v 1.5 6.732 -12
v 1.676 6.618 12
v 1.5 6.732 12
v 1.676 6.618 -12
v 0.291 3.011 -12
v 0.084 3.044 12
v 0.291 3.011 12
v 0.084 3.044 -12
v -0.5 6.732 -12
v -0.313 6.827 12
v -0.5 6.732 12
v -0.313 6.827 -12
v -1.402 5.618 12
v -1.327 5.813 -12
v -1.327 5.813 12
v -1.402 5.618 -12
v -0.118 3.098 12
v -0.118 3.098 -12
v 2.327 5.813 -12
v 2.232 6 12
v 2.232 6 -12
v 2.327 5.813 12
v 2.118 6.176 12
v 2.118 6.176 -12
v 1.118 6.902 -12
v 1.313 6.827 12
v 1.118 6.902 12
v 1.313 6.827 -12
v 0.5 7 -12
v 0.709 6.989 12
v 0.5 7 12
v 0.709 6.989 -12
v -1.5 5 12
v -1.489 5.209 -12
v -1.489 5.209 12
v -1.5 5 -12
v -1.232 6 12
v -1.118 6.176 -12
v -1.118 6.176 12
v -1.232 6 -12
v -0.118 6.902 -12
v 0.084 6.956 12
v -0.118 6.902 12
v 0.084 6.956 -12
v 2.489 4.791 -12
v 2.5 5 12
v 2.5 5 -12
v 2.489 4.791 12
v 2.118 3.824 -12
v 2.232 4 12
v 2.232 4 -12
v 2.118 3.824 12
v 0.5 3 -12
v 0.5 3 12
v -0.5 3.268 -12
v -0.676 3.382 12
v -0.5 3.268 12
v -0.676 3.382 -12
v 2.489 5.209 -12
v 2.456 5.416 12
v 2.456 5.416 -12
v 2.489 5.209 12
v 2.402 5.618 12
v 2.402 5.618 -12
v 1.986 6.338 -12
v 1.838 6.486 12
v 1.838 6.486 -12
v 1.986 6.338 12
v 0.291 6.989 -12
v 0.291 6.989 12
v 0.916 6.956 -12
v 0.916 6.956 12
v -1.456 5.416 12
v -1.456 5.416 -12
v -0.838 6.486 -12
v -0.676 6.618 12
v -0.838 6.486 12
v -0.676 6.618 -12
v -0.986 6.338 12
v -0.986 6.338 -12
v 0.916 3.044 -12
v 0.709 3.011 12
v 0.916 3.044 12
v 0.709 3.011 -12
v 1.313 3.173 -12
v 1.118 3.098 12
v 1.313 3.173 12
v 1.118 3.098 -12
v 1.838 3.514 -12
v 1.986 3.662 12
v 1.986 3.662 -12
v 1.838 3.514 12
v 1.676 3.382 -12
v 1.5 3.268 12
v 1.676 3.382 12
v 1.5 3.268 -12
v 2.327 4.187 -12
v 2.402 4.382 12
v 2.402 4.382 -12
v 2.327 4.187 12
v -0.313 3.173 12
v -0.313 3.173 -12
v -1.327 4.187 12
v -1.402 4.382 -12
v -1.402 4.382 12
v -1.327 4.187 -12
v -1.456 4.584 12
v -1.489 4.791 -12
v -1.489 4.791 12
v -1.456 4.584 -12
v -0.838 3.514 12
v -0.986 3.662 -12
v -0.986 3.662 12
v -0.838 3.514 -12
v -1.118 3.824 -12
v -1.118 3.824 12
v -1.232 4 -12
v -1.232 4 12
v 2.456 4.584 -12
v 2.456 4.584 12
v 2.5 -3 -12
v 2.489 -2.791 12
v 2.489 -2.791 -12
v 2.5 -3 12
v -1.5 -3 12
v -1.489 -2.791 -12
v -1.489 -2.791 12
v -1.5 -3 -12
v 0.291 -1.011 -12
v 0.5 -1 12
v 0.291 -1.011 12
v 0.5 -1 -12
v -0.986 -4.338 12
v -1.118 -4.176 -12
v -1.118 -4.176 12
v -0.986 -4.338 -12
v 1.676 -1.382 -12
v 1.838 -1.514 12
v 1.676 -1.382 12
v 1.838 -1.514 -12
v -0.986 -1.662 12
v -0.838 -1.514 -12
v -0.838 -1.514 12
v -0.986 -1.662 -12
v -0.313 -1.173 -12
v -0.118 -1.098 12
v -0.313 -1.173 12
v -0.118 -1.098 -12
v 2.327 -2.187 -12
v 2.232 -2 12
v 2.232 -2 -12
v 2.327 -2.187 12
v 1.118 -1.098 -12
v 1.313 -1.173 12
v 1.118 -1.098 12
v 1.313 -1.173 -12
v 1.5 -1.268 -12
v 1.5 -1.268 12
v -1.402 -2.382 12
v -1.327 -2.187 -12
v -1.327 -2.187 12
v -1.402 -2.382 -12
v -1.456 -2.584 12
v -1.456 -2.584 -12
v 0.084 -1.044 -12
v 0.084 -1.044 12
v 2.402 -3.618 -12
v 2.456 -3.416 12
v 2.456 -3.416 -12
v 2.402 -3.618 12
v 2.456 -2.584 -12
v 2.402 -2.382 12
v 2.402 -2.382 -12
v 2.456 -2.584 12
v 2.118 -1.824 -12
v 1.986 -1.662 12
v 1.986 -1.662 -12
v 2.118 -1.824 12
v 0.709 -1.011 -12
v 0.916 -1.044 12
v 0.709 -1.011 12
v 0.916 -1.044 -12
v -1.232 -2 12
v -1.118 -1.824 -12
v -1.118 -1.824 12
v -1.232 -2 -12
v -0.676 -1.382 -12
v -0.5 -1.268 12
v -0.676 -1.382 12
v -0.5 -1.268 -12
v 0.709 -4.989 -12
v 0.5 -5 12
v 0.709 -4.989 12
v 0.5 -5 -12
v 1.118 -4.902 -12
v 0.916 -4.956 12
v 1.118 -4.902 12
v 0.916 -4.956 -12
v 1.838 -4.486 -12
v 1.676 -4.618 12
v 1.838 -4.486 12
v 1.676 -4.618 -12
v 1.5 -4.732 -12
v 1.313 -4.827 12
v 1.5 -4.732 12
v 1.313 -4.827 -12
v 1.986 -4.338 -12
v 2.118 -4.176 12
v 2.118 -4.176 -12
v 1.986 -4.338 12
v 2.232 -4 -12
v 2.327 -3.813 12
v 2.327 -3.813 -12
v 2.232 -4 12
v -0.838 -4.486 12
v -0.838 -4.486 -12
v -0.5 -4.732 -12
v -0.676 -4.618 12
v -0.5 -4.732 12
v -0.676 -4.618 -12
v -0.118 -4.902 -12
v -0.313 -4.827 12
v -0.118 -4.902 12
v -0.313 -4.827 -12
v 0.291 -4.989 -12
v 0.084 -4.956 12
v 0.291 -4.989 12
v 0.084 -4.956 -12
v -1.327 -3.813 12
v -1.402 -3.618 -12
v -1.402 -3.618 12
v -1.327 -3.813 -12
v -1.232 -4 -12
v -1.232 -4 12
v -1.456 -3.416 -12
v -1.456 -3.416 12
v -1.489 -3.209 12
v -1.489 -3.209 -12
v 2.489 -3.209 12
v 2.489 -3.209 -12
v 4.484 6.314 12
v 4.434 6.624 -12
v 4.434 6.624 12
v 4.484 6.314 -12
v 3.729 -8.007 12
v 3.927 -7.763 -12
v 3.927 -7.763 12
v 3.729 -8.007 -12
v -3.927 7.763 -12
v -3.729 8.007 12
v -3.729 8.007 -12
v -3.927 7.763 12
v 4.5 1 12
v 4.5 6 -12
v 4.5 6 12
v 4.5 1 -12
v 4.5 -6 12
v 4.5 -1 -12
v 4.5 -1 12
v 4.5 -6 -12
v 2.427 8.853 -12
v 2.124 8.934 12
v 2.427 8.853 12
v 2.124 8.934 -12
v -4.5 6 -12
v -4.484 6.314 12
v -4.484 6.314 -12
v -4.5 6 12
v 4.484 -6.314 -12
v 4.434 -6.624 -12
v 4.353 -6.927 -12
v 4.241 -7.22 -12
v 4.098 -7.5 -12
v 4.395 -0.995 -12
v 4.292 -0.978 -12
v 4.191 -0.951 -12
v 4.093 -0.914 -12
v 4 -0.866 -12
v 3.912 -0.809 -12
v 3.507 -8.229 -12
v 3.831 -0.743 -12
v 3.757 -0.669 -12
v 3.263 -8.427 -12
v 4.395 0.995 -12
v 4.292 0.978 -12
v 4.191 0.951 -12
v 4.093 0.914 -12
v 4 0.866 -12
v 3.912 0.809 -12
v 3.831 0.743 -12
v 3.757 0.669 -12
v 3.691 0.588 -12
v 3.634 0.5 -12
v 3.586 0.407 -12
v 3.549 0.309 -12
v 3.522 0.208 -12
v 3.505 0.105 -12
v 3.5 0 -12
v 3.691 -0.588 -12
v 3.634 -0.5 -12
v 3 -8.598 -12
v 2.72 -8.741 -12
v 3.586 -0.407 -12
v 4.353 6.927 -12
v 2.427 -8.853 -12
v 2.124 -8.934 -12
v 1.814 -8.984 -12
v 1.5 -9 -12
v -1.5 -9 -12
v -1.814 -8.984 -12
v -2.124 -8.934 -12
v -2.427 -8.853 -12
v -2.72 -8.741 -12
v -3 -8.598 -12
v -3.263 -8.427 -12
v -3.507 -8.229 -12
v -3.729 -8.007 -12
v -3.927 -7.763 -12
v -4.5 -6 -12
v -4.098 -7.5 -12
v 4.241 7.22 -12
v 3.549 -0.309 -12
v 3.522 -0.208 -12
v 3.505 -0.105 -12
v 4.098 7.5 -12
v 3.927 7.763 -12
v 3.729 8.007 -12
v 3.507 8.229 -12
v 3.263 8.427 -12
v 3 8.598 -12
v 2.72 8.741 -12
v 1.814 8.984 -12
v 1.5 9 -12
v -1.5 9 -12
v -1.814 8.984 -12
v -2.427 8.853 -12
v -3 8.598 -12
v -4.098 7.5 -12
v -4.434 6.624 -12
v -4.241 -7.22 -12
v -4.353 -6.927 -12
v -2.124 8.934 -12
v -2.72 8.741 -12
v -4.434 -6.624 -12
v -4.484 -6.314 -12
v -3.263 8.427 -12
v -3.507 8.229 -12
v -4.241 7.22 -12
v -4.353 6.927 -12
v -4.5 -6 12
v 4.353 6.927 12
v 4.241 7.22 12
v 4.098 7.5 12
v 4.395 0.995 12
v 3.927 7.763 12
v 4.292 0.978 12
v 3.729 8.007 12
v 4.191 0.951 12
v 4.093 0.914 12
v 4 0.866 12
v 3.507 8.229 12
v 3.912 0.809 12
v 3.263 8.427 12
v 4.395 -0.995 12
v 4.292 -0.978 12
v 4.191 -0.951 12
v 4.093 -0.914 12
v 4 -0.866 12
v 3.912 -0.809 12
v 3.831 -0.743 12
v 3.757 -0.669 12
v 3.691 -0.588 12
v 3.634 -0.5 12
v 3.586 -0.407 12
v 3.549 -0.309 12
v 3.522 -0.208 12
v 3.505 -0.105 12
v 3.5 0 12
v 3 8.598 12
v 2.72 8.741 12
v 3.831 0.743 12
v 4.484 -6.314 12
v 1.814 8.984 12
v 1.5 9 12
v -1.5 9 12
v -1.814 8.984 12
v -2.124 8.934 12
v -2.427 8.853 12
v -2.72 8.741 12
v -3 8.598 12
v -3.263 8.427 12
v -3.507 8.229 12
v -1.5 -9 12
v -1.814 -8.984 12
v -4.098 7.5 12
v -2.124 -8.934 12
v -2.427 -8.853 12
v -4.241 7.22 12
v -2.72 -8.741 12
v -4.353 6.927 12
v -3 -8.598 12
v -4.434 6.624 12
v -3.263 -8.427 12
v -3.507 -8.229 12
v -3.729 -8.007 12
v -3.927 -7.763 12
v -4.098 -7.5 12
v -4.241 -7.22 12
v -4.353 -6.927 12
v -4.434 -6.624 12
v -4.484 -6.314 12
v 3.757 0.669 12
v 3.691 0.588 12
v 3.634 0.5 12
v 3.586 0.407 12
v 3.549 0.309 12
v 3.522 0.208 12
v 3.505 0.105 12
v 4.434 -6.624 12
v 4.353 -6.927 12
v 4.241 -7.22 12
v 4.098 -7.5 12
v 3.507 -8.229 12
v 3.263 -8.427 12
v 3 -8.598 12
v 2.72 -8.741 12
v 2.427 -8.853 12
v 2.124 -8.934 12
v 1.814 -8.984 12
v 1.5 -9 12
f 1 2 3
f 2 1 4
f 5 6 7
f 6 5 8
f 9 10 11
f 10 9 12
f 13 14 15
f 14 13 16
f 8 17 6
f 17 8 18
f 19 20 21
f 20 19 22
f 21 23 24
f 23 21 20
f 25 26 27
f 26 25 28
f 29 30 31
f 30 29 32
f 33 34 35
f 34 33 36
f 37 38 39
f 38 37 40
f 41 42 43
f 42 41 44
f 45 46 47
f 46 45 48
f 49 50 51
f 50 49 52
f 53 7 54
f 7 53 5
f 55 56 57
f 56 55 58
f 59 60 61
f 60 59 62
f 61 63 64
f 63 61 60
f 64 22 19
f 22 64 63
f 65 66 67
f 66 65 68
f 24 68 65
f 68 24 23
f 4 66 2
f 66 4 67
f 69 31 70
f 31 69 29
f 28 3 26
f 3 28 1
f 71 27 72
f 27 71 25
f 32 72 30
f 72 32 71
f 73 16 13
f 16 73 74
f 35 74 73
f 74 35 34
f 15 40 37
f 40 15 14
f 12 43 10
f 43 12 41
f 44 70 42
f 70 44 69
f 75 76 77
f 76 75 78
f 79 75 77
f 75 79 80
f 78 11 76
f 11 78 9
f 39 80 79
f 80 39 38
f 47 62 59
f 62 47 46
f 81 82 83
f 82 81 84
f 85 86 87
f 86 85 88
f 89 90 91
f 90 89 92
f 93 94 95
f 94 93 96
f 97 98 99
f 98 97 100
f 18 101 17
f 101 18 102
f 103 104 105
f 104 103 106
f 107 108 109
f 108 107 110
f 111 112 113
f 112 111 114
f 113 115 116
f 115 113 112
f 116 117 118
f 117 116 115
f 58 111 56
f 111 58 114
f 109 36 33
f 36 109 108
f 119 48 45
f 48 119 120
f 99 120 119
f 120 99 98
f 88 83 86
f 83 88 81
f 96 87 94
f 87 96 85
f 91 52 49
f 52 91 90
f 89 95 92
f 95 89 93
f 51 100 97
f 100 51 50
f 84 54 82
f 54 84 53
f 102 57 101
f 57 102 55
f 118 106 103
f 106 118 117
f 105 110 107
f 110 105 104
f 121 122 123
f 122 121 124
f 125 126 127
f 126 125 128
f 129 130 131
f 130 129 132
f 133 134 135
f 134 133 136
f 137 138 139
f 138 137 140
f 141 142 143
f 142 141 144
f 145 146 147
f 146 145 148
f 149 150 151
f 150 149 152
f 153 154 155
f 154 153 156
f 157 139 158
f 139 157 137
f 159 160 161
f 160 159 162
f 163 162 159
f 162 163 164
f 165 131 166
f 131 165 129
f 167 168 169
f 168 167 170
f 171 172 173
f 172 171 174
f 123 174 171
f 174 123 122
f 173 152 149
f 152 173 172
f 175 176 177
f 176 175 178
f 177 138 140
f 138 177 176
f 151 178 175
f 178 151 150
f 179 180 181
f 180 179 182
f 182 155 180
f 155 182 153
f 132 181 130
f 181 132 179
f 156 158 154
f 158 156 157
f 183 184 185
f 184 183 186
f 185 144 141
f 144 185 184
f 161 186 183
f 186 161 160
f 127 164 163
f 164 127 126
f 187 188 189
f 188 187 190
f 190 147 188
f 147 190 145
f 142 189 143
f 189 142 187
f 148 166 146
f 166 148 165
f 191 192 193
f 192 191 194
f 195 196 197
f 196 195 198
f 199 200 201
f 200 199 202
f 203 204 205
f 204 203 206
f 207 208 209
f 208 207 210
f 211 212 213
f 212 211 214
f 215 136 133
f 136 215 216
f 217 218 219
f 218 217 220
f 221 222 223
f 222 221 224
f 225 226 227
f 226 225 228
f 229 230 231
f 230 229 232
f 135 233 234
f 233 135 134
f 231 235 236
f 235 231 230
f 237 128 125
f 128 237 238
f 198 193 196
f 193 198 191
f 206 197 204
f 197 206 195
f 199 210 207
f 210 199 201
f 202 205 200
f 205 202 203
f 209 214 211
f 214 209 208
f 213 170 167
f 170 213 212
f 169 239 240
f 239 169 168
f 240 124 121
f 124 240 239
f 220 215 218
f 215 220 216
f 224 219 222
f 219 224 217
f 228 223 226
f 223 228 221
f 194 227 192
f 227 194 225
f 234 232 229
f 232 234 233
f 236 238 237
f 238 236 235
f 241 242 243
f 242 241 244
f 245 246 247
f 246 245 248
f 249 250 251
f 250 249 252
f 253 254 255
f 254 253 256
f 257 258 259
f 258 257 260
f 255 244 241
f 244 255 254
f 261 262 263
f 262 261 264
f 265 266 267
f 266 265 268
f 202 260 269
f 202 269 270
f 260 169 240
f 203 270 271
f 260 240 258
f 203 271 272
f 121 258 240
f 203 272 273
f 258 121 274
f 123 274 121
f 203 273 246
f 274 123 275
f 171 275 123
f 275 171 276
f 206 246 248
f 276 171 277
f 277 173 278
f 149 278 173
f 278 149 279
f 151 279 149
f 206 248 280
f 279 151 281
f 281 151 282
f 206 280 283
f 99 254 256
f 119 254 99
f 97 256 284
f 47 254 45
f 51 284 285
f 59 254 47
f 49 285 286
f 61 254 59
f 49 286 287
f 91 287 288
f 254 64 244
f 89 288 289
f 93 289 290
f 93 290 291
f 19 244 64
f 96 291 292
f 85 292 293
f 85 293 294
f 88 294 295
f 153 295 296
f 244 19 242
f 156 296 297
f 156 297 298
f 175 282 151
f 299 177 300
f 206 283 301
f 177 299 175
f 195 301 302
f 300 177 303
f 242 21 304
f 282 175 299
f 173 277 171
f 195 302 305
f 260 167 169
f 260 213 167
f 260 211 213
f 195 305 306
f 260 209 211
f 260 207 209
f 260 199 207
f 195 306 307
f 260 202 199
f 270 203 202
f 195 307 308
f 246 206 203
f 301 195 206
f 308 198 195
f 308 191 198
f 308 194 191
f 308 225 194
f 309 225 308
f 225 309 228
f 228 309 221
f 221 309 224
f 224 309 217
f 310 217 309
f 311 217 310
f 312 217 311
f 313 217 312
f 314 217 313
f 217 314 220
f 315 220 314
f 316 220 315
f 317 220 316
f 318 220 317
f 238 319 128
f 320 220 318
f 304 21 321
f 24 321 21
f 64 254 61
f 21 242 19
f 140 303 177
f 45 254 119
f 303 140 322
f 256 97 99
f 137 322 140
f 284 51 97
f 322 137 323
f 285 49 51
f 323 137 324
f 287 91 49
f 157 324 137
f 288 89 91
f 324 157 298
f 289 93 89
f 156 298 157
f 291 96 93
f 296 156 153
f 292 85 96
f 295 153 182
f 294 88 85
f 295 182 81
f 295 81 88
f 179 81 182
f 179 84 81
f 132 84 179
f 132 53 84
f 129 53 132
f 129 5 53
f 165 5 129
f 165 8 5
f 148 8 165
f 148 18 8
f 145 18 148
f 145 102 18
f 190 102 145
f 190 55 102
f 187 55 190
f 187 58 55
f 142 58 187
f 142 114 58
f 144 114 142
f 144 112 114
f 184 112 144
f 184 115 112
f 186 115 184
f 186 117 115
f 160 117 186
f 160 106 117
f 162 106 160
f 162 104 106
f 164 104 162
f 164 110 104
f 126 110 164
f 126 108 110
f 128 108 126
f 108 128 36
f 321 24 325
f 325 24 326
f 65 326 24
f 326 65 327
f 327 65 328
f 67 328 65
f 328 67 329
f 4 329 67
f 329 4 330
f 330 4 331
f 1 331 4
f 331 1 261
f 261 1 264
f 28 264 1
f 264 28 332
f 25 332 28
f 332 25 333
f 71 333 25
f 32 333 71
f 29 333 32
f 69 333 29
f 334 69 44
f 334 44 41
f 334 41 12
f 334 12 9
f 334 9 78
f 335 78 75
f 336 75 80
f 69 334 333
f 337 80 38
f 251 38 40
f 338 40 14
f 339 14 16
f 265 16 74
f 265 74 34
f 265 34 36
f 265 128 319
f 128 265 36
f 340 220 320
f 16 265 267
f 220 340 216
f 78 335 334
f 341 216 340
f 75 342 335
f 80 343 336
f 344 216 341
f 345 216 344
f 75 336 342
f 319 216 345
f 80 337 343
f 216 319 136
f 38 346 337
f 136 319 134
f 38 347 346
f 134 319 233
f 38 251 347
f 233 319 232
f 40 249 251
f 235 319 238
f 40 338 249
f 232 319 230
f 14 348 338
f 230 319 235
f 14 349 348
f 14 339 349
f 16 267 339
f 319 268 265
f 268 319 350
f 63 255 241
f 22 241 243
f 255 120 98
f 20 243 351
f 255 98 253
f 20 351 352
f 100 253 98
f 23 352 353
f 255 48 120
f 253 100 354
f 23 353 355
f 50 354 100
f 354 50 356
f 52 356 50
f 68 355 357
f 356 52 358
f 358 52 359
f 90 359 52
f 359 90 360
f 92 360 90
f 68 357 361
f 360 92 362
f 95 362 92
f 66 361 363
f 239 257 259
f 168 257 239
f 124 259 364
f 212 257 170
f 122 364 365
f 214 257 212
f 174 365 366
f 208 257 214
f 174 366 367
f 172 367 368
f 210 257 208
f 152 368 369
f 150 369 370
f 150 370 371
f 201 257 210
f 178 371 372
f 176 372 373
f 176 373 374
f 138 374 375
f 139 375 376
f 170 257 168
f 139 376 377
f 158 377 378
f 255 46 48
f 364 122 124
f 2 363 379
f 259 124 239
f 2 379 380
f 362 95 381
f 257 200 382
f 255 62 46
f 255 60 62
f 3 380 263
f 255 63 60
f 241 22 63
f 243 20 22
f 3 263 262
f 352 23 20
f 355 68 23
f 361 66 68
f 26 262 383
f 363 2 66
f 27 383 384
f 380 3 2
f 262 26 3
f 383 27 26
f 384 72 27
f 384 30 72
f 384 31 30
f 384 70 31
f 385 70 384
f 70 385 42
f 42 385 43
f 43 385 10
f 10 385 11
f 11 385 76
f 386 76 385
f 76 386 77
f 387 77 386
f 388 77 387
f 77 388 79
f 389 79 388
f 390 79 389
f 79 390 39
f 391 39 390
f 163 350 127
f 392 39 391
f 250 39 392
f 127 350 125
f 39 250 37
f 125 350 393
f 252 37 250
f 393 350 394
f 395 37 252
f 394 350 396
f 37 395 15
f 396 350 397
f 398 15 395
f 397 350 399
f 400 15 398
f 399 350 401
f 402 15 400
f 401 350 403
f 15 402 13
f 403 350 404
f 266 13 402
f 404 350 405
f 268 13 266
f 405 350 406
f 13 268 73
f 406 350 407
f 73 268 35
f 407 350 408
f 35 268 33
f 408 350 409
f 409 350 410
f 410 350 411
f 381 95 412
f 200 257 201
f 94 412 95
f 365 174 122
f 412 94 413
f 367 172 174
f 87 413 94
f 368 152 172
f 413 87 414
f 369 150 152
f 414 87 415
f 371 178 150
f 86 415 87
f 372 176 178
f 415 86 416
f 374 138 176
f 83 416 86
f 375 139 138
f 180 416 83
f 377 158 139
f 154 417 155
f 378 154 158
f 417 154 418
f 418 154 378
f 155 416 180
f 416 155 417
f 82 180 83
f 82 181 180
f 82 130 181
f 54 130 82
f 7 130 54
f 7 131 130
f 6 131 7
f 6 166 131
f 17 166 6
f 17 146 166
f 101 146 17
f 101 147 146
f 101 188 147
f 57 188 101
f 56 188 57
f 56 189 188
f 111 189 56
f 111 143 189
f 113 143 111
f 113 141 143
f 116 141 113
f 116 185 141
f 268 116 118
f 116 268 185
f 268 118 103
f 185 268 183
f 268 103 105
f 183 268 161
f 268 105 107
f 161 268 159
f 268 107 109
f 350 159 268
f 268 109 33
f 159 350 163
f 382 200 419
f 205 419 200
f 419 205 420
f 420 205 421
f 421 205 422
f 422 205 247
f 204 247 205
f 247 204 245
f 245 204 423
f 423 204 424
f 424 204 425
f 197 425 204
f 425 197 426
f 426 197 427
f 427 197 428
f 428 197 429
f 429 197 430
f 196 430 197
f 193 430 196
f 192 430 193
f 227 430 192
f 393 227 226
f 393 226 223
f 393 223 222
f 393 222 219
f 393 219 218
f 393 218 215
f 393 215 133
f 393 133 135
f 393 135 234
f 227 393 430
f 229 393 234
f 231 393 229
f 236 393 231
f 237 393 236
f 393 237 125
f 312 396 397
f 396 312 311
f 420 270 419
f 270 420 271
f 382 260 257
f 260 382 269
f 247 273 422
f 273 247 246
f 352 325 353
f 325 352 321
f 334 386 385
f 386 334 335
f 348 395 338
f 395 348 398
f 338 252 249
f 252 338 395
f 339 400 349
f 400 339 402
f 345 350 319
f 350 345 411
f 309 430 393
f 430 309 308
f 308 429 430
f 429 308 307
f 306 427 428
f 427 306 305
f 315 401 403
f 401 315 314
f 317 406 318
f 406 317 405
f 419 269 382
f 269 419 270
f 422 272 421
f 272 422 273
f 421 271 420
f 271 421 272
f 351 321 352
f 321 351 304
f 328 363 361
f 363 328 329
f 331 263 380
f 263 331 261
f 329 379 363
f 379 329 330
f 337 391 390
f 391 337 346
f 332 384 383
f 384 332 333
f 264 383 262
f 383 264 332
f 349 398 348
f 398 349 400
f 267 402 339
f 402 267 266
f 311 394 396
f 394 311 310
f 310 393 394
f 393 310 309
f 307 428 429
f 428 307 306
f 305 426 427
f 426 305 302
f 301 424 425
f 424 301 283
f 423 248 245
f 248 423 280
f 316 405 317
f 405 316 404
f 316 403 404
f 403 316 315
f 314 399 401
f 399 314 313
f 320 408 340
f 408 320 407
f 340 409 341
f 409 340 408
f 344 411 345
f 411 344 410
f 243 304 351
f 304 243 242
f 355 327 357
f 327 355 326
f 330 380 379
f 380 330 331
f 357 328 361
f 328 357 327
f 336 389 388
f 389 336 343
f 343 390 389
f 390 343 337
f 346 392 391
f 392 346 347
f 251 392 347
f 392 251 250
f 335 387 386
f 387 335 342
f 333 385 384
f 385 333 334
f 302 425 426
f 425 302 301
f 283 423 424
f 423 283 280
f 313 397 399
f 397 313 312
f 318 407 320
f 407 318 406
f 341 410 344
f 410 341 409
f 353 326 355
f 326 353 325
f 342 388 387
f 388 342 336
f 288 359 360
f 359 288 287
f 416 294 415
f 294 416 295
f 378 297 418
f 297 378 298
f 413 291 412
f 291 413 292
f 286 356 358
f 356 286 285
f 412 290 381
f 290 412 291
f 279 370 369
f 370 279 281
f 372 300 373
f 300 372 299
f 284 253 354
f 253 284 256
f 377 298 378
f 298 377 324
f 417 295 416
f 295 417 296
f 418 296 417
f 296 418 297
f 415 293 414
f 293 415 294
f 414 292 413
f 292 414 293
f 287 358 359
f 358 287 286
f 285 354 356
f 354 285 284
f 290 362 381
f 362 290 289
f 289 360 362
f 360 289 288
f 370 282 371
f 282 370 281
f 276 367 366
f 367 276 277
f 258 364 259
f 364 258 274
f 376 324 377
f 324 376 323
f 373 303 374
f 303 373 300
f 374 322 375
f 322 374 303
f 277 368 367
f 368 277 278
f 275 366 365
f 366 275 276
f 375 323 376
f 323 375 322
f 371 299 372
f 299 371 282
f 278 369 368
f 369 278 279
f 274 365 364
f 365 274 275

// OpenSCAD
 
$fn=60;

screwCutout = 4;

blockHeigth = 24;
blockWidth = 9;
blockLength = 18;

holeSepertation = 8;

//color("red") cube([10,32,24],center=true);

difference(){
//	plate2Point(blockLength,blockHeigth,blockWidth);
	plate4Point(blockWidth,blockLength,blockHeigth,6);
	for(a = [1,-1]){
		translate([.5,(a * (holeSepertation/2))+1,0])
			cylinder(h=blockHeigth+5,d=screwCutout,center=true);
	}
	translate([blockWidth/2,0,0])
		cylinder(h=blockHeigth+5,d=2,center=true);
}
////////////////////////////////////////////////////////////////////////////////////////////////////
module plate2Point(y,z,d){
	hull(){
		color("green") translate([0 ,(y/2) -(d/2),0]) cylinder(h=z, d=d, center=true);
		color("blue")  translate([0 ,-(y/2)+(d/2),0]) cylinder(h=z, d=d, center=true);
	}
}
////////////////////////////////////////////////////////////////////////////////////////////////////
module plate4Point(x,y,z,d){
	hull(){
		color("green") translate([(x/2)-(d/2) ,(y/2) -(d/2),0]) cylinder(h=z, d=d, center=true);
		color("blue")  translate([(x/2)-(d/2) ,-(y/2)+(d/2),0]) cylinder(h=z, d=d, center=true);
		color("red")   translate([-(x/2)+(d/2),(y/2) -(d/2),0]) cylinder(h=z, d=d, center=true);
		color("grey")  translate([-(x/2)+(d/2),-(y/2)+(d/2),0]) cylinder(h=z, d=d, center=true);
	}
}
